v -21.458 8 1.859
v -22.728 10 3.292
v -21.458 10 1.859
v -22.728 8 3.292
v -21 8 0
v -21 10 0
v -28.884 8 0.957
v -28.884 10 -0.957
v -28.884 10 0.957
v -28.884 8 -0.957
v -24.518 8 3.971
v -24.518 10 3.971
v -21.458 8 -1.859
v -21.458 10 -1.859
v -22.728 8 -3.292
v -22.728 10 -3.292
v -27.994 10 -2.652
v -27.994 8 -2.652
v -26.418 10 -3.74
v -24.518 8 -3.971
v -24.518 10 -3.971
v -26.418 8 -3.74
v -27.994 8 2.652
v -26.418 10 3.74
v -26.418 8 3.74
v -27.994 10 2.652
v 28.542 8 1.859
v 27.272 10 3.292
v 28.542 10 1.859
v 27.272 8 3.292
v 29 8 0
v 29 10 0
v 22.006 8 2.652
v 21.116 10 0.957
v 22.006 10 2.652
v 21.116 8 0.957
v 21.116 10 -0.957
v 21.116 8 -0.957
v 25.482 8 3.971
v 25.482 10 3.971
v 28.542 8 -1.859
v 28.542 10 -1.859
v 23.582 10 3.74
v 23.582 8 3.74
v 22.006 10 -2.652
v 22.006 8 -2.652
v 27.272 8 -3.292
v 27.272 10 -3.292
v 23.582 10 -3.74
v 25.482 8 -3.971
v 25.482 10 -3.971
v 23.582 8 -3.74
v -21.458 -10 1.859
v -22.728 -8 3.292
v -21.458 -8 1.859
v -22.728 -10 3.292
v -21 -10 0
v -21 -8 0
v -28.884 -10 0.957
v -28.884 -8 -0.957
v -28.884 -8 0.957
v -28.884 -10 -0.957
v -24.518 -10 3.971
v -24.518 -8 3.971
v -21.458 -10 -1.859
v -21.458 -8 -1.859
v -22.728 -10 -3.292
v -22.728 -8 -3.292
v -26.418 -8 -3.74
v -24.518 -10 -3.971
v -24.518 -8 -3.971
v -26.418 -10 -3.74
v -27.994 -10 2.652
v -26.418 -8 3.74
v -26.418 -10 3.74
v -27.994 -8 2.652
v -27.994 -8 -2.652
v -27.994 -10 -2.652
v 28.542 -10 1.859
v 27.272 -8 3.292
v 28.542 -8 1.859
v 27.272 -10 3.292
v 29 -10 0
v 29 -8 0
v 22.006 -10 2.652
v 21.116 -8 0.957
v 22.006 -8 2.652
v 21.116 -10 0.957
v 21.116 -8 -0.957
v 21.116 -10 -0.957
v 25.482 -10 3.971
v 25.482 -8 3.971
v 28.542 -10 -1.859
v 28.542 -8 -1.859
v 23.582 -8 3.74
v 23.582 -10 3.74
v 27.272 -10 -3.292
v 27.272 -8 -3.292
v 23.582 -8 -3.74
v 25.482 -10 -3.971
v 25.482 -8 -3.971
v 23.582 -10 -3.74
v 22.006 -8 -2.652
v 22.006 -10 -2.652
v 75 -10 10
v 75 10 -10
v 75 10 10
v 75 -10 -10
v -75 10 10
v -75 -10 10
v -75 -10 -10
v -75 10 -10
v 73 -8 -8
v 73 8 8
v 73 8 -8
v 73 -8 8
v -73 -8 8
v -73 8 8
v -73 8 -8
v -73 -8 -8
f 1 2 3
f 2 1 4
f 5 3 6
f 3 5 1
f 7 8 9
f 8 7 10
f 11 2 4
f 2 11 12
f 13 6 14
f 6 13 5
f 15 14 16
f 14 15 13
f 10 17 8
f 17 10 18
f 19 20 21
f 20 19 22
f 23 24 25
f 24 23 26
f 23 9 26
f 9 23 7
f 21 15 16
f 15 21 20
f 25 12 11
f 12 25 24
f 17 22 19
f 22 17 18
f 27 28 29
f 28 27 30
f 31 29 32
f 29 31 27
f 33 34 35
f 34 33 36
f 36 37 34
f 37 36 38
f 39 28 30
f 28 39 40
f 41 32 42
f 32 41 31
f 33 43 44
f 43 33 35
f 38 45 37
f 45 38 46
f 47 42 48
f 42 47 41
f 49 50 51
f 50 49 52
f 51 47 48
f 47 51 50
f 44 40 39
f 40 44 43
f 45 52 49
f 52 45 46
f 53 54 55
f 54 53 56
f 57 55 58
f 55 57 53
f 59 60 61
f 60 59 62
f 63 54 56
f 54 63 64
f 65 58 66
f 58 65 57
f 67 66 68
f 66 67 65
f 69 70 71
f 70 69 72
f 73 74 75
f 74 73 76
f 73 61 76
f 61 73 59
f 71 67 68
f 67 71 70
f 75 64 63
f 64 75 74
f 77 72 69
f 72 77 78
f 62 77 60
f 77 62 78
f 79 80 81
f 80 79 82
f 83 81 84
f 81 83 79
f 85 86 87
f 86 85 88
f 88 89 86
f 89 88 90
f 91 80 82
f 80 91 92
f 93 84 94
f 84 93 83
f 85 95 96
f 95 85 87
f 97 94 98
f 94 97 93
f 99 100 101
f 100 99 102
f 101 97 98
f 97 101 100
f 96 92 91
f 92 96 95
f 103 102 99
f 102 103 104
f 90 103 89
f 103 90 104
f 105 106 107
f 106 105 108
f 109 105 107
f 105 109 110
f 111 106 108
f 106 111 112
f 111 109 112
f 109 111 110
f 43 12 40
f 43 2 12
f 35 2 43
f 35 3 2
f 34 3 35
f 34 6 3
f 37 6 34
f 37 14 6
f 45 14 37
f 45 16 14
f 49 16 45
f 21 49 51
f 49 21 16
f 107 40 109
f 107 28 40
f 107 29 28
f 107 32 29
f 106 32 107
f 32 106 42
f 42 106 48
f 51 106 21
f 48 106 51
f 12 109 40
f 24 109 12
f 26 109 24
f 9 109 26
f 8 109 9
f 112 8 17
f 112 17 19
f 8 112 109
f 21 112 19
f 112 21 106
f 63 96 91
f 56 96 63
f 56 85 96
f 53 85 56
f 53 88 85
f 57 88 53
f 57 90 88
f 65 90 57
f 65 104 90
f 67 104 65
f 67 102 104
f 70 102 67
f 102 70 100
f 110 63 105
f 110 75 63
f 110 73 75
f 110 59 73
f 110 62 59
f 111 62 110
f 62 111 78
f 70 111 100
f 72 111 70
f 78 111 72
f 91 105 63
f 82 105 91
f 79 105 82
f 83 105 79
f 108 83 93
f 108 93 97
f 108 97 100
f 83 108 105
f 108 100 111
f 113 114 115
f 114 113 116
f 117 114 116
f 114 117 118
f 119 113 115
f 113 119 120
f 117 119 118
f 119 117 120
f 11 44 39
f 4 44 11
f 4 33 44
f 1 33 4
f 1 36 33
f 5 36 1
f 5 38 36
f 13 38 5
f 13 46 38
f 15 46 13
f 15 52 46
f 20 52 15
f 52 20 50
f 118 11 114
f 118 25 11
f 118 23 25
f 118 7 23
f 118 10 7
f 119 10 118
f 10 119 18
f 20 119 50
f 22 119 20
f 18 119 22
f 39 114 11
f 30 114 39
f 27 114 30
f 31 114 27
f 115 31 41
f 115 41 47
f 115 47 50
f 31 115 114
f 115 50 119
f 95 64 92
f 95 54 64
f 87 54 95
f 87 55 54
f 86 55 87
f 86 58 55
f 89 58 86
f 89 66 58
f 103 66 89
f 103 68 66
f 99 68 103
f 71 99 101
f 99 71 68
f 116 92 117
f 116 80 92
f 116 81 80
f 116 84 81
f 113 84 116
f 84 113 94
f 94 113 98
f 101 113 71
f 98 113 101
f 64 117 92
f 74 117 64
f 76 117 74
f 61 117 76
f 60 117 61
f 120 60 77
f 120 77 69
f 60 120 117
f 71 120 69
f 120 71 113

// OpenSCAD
// Parameters for the rectangular hollow component
length = 150; // Increased length to match the elongated shape of the original model
width = 20;   // Outer width of the prism
height = 20;  // Outer height of the prism
thickness = 2; // Wall thickness of the hollow prism
hole_diameter = 8; // Enlarged diameter of the circular holes
hole_spacing = 50; // Increased spacing between the holes along the length

module rectangular_hollow_component() {
    // Outer rectangular prism
    difference() {
        cube([length, width, height], center = true);
        
        // Inner hollow space
        translate([0, 0, 0])
            cube([length - 2 * thickness, width - 2 * thickness, height - 2 * thickness], center = true);
        
        // Circular holes on one face
        for (i = [-1, 1]) {
            translate([i * hole_spacing / 2, width / 2, 0])
                rotate([90, 0, 0])
                    cylinder(r = hole_diameter / 2, h = width + 1, center = true);
        }
        
        // Circular holes on the opposite face
        for (i = [-1, 1]) {
            translate([i * hole_spacing / 2, -width / 2, 0])
                rotate([90, 0, 0])
                    cylinder(r = hole_diameter / 2, h = width + 1, center = true);
        }
    }
}

// Render the rectangular hollow component
rectangular_hollow_component();
